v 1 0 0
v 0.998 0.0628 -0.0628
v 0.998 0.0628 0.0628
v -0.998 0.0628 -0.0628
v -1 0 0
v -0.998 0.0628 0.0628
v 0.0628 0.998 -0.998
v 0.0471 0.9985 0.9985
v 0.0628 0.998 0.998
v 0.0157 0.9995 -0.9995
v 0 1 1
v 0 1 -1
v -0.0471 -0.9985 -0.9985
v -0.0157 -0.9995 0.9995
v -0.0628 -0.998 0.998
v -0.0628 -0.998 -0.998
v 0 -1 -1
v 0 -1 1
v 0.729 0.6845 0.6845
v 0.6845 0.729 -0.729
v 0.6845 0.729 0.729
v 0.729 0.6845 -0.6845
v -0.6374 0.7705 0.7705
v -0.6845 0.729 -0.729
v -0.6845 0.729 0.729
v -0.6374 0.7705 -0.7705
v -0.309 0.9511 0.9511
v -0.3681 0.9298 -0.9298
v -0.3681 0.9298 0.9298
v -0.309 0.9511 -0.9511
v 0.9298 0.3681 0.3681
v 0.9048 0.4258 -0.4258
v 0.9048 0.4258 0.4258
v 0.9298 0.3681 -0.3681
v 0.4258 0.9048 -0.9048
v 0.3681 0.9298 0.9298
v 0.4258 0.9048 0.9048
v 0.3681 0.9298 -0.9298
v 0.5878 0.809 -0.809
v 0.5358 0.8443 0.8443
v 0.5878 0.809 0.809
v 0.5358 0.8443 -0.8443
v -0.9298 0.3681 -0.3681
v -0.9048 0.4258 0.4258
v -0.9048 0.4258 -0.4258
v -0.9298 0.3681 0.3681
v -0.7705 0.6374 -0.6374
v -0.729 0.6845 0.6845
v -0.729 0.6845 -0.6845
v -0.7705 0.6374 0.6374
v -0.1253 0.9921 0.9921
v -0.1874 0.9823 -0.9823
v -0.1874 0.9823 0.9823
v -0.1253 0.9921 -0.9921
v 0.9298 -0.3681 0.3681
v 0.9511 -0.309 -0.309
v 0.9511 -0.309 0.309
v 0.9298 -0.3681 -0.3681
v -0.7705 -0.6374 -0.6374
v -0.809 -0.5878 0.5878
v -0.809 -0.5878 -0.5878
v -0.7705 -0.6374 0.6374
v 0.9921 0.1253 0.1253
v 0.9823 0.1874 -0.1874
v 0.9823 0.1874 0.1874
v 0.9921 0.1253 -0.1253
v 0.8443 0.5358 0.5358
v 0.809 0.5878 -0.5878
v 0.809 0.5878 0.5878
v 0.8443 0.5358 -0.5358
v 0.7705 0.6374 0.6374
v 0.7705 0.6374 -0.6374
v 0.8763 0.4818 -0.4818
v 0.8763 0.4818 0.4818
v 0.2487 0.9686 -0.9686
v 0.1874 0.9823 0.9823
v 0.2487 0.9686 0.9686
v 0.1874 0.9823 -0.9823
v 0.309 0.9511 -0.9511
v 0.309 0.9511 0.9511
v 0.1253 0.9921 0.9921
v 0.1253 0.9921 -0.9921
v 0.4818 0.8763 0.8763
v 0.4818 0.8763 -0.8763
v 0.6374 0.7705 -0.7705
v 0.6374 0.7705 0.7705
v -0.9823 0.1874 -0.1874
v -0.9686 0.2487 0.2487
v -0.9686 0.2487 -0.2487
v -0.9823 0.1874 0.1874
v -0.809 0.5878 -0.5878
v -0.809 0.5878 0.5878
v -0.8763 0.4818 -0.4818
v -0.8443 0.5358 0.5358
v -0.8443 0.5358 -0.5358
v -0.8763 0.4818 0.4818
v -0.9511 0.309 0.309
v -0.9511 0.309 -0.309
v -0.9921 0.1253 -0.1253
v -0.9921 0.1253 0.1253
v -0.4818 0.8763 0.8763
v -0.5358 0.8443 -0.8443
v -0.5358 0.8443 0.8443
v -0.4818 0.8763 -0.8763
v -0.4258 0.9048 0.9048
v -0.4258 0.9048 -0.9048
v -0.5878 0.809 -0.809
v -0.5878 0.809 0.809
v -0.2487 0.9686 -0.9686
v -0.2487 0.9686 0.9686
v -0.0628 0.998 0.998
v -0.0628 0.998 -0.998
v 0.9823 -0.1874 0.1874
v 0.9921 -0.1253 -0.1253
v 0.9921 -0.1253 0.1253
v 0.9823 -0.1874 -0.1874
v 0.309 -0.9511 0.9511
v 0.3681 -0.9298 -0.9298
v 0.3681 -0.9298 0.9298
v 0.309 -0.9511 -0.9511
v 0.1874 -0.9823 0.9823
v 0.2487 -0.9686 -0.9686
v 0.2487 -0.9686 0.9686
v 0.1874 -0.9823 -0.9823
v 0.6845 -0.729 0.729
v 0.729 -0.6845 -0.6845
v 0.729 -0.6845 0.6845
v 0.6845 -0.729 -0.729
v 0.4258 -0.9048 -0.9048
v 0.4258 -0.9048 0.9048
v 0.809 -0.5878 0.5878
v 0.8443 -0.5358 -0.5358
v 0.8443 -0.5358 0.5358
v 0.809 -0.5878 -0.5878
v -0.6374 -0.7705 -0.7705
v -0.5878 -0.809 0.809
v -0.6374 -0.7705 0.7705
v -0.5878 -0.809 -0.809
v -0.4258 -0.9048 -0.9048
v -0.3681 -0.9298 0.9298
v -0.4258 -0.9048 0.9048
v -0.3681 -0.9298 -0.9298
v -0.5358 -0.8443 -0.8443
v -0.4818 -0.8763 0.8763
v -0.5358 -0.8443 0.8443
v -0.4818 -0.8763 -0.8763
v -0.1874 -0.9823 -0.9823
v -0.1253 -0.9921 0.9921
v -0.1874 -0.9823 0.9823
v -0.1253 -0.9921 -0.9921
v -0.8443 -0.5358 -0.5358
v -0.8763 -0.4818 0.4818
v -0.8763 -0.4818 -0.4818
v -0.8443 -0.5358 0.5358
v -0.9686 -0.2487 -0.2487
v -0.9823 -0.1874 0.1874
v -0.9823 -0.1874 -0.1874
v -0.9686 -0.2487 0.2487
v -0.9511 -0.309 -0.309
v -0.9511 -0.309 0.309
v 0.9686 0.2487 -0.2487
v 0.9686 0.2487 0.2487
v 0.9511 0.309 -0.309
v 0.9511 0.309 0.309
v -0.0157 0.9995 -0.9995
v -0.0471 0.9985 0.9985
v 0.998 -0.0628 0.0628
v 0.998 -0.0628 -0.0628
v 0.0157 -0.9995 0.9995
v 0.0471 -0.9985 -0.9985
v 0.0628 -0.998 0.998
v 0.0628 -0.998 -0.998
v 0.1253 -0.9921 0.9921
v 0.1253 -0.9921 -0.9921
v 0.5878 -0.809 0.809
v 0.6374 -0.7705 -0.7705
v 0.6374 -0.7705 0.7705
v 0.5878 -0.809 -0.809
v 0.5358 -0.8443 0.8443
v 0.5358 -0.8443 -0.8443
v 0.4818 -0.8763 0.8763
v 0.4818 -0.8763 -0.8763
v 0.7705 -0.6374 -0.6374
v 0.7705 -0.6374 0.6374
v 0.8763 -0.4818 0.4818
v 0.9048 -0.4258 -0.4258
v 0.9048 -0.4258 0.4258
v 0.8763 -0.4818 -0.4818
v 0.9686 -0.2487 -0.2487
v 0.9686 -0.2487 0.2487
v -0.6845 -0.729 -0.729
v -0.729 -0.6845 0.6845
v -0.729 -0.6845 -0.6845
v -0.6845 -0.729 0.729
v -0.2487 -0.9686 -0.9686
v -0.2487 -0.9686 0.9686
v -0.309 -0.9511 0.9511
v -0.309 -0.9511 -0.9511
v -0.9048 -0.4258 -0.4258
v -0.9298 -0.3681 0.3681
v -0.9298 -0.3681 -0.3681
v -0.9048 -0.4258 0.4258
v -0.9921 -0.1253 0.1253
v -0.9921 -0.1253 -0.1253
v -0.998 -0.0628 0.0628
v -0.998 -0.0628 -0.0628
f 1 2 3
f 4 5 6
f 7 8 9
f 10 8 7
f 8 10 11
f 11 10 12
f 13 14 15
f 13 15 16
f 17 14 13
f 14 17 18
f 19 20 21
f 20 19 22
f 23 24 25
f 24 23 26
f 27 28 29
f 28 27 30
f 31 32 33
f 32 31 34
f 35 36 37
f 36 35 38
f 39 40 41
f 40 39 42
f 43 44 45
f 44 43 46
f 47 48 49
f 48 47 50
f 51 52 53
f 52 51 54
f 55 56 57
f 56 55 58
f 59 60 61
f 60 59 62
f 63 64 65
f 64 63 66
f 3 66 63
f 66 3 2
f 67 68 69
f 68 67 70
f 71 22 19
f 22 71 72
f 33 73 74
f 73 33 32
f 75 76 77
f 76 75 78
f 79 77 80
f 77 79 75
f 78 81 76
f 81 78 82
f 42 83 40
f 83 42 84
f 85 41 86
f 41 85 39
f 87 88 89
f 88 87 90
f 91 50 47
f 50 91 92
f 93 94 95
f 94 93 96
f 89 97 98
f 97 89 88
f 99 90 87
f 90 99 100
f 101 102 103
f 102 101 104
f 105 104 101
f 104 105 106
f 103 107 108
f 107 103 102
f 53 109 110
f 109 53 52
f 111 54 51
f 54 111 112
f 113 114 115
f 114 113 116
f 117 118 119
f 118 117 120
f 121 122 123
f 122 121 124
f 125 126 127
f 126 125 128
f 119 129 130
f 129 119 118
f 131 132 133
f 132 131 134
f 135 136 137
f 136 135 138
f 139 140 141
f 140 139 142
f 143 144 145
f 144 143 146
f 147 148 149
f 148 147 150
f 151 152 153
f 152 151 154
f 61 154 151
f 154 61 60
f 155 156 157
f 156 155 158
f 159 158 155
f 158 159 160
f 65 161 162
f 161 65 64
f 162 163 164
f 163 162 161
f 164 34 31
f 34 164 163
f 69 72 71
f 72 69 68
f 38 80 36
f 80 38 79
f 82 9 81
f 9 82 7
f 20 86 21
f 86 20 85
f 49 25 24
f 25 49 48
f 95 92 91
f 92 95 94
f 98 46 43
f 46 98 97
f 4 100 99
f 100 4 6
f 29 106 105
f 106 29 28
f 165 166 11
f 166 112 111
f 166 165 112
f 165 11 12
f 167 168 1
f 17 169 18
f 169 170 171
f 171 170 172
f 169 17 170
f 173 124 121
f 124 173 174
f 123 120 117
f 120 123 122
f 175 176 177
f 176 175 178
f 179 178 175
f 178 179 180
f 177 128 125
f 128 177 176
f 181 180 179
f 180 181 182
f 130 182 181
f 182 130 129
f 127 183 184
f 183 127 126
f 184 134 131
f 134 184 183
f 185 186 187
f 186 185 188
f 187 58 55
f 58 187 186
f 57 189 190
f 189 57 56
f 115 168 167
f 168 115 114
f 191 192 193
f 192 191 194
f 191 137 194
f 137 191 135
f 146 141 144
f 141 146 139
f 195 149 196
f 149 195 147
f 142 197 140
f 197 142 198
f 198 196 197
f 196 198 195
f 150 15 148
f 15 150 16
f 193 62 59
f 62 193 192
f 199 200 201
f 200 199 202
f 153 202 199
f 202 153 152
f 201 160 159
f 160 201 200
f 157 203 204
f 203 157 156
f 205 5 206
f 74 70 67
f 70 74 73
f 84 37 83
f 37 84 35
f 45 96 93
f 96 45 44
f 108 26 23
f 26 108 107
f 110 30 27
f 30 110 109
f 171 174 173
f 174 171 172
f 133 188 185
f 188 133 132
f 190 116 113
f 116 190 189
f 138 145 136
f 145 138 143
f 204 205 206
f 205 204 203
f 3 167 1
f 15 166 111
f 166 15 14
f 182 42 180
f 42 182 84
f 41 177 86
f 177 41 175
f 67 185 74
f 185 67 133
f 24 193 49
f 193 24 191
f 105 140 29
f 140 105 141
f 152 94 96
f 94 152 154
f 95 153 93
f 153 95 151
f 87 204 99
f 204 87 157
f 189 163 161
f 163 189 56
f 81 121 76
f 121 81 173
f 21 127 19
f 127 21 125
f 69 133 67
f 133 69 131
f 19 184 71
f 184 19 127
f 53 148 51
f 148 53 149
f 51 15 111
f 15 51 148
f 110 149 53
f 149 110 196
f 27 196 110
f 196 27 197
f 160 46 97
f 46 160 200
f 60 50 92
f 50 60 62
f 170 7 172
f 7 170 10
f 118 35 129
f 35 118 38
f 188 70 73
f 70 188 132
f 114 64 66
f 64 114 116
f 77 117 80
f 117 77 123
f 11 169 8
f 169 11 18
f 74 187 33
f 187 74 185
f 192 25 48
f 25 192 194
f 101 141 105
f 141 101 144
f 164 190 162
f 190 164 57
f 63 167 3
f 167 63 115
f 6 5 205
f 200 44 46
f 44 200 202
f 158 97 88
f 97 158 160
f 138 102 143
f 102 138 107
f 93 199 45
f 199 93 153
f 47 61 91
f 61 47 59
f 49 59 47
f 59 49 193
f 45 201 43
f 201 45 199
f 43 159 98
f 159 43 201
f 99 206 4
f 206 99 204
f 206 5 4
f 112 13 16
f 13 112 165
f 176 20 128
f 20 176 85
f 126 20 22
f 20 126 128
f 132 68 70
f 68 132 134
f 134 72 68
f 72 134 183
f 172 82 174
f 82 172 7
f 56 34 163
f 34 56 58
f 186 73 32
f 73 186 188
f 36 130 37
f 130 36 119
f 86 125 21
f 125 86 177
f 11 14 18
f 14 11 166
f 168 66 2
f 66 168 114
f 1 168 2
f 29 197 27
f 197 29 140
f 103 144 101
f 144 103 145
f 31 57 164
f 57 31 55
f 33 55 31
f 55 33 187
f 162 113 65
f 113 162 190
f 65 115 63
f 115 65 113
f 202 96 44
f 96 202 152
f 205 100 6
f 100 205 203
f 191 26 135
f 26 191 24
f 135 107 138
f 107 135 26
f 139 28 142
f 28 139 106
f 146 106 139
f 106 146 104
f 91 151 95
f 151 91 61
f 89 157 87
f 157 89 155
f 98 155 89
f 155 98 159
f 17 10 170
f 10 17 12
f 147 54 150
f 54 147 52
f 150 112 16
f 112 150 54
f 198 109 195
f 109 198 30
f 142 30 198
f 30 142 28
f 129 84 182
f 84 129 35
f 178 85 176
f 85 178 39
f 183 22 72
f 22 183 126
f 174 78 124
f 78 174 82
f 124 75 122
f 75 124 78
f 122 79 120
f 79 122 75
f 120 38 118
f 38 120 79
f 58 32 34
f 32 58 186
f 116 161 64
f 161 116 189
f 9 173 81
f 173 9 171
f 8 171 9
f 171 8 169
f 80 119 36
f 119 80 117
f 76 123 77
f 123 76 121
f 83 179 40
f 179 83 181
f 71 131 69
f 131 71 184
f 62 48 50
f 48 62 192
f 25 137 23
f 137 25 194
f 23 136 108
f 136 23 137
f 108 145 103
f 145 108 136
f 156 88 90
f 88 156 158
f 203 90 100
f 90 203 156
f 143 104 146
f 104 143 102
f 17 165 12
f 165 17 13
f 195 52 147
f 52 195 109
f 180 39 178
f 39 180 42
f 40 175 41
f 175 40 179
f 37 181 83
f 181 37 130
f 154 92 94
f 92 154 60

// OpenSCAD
$fn = 500;
intersection() {
    cylinder (h = 4, r=1, center = true, $fn=100);
    rotate ([90,0,0]) cylinder (h = 4, r=1, center = true,
$fn=100);
}
